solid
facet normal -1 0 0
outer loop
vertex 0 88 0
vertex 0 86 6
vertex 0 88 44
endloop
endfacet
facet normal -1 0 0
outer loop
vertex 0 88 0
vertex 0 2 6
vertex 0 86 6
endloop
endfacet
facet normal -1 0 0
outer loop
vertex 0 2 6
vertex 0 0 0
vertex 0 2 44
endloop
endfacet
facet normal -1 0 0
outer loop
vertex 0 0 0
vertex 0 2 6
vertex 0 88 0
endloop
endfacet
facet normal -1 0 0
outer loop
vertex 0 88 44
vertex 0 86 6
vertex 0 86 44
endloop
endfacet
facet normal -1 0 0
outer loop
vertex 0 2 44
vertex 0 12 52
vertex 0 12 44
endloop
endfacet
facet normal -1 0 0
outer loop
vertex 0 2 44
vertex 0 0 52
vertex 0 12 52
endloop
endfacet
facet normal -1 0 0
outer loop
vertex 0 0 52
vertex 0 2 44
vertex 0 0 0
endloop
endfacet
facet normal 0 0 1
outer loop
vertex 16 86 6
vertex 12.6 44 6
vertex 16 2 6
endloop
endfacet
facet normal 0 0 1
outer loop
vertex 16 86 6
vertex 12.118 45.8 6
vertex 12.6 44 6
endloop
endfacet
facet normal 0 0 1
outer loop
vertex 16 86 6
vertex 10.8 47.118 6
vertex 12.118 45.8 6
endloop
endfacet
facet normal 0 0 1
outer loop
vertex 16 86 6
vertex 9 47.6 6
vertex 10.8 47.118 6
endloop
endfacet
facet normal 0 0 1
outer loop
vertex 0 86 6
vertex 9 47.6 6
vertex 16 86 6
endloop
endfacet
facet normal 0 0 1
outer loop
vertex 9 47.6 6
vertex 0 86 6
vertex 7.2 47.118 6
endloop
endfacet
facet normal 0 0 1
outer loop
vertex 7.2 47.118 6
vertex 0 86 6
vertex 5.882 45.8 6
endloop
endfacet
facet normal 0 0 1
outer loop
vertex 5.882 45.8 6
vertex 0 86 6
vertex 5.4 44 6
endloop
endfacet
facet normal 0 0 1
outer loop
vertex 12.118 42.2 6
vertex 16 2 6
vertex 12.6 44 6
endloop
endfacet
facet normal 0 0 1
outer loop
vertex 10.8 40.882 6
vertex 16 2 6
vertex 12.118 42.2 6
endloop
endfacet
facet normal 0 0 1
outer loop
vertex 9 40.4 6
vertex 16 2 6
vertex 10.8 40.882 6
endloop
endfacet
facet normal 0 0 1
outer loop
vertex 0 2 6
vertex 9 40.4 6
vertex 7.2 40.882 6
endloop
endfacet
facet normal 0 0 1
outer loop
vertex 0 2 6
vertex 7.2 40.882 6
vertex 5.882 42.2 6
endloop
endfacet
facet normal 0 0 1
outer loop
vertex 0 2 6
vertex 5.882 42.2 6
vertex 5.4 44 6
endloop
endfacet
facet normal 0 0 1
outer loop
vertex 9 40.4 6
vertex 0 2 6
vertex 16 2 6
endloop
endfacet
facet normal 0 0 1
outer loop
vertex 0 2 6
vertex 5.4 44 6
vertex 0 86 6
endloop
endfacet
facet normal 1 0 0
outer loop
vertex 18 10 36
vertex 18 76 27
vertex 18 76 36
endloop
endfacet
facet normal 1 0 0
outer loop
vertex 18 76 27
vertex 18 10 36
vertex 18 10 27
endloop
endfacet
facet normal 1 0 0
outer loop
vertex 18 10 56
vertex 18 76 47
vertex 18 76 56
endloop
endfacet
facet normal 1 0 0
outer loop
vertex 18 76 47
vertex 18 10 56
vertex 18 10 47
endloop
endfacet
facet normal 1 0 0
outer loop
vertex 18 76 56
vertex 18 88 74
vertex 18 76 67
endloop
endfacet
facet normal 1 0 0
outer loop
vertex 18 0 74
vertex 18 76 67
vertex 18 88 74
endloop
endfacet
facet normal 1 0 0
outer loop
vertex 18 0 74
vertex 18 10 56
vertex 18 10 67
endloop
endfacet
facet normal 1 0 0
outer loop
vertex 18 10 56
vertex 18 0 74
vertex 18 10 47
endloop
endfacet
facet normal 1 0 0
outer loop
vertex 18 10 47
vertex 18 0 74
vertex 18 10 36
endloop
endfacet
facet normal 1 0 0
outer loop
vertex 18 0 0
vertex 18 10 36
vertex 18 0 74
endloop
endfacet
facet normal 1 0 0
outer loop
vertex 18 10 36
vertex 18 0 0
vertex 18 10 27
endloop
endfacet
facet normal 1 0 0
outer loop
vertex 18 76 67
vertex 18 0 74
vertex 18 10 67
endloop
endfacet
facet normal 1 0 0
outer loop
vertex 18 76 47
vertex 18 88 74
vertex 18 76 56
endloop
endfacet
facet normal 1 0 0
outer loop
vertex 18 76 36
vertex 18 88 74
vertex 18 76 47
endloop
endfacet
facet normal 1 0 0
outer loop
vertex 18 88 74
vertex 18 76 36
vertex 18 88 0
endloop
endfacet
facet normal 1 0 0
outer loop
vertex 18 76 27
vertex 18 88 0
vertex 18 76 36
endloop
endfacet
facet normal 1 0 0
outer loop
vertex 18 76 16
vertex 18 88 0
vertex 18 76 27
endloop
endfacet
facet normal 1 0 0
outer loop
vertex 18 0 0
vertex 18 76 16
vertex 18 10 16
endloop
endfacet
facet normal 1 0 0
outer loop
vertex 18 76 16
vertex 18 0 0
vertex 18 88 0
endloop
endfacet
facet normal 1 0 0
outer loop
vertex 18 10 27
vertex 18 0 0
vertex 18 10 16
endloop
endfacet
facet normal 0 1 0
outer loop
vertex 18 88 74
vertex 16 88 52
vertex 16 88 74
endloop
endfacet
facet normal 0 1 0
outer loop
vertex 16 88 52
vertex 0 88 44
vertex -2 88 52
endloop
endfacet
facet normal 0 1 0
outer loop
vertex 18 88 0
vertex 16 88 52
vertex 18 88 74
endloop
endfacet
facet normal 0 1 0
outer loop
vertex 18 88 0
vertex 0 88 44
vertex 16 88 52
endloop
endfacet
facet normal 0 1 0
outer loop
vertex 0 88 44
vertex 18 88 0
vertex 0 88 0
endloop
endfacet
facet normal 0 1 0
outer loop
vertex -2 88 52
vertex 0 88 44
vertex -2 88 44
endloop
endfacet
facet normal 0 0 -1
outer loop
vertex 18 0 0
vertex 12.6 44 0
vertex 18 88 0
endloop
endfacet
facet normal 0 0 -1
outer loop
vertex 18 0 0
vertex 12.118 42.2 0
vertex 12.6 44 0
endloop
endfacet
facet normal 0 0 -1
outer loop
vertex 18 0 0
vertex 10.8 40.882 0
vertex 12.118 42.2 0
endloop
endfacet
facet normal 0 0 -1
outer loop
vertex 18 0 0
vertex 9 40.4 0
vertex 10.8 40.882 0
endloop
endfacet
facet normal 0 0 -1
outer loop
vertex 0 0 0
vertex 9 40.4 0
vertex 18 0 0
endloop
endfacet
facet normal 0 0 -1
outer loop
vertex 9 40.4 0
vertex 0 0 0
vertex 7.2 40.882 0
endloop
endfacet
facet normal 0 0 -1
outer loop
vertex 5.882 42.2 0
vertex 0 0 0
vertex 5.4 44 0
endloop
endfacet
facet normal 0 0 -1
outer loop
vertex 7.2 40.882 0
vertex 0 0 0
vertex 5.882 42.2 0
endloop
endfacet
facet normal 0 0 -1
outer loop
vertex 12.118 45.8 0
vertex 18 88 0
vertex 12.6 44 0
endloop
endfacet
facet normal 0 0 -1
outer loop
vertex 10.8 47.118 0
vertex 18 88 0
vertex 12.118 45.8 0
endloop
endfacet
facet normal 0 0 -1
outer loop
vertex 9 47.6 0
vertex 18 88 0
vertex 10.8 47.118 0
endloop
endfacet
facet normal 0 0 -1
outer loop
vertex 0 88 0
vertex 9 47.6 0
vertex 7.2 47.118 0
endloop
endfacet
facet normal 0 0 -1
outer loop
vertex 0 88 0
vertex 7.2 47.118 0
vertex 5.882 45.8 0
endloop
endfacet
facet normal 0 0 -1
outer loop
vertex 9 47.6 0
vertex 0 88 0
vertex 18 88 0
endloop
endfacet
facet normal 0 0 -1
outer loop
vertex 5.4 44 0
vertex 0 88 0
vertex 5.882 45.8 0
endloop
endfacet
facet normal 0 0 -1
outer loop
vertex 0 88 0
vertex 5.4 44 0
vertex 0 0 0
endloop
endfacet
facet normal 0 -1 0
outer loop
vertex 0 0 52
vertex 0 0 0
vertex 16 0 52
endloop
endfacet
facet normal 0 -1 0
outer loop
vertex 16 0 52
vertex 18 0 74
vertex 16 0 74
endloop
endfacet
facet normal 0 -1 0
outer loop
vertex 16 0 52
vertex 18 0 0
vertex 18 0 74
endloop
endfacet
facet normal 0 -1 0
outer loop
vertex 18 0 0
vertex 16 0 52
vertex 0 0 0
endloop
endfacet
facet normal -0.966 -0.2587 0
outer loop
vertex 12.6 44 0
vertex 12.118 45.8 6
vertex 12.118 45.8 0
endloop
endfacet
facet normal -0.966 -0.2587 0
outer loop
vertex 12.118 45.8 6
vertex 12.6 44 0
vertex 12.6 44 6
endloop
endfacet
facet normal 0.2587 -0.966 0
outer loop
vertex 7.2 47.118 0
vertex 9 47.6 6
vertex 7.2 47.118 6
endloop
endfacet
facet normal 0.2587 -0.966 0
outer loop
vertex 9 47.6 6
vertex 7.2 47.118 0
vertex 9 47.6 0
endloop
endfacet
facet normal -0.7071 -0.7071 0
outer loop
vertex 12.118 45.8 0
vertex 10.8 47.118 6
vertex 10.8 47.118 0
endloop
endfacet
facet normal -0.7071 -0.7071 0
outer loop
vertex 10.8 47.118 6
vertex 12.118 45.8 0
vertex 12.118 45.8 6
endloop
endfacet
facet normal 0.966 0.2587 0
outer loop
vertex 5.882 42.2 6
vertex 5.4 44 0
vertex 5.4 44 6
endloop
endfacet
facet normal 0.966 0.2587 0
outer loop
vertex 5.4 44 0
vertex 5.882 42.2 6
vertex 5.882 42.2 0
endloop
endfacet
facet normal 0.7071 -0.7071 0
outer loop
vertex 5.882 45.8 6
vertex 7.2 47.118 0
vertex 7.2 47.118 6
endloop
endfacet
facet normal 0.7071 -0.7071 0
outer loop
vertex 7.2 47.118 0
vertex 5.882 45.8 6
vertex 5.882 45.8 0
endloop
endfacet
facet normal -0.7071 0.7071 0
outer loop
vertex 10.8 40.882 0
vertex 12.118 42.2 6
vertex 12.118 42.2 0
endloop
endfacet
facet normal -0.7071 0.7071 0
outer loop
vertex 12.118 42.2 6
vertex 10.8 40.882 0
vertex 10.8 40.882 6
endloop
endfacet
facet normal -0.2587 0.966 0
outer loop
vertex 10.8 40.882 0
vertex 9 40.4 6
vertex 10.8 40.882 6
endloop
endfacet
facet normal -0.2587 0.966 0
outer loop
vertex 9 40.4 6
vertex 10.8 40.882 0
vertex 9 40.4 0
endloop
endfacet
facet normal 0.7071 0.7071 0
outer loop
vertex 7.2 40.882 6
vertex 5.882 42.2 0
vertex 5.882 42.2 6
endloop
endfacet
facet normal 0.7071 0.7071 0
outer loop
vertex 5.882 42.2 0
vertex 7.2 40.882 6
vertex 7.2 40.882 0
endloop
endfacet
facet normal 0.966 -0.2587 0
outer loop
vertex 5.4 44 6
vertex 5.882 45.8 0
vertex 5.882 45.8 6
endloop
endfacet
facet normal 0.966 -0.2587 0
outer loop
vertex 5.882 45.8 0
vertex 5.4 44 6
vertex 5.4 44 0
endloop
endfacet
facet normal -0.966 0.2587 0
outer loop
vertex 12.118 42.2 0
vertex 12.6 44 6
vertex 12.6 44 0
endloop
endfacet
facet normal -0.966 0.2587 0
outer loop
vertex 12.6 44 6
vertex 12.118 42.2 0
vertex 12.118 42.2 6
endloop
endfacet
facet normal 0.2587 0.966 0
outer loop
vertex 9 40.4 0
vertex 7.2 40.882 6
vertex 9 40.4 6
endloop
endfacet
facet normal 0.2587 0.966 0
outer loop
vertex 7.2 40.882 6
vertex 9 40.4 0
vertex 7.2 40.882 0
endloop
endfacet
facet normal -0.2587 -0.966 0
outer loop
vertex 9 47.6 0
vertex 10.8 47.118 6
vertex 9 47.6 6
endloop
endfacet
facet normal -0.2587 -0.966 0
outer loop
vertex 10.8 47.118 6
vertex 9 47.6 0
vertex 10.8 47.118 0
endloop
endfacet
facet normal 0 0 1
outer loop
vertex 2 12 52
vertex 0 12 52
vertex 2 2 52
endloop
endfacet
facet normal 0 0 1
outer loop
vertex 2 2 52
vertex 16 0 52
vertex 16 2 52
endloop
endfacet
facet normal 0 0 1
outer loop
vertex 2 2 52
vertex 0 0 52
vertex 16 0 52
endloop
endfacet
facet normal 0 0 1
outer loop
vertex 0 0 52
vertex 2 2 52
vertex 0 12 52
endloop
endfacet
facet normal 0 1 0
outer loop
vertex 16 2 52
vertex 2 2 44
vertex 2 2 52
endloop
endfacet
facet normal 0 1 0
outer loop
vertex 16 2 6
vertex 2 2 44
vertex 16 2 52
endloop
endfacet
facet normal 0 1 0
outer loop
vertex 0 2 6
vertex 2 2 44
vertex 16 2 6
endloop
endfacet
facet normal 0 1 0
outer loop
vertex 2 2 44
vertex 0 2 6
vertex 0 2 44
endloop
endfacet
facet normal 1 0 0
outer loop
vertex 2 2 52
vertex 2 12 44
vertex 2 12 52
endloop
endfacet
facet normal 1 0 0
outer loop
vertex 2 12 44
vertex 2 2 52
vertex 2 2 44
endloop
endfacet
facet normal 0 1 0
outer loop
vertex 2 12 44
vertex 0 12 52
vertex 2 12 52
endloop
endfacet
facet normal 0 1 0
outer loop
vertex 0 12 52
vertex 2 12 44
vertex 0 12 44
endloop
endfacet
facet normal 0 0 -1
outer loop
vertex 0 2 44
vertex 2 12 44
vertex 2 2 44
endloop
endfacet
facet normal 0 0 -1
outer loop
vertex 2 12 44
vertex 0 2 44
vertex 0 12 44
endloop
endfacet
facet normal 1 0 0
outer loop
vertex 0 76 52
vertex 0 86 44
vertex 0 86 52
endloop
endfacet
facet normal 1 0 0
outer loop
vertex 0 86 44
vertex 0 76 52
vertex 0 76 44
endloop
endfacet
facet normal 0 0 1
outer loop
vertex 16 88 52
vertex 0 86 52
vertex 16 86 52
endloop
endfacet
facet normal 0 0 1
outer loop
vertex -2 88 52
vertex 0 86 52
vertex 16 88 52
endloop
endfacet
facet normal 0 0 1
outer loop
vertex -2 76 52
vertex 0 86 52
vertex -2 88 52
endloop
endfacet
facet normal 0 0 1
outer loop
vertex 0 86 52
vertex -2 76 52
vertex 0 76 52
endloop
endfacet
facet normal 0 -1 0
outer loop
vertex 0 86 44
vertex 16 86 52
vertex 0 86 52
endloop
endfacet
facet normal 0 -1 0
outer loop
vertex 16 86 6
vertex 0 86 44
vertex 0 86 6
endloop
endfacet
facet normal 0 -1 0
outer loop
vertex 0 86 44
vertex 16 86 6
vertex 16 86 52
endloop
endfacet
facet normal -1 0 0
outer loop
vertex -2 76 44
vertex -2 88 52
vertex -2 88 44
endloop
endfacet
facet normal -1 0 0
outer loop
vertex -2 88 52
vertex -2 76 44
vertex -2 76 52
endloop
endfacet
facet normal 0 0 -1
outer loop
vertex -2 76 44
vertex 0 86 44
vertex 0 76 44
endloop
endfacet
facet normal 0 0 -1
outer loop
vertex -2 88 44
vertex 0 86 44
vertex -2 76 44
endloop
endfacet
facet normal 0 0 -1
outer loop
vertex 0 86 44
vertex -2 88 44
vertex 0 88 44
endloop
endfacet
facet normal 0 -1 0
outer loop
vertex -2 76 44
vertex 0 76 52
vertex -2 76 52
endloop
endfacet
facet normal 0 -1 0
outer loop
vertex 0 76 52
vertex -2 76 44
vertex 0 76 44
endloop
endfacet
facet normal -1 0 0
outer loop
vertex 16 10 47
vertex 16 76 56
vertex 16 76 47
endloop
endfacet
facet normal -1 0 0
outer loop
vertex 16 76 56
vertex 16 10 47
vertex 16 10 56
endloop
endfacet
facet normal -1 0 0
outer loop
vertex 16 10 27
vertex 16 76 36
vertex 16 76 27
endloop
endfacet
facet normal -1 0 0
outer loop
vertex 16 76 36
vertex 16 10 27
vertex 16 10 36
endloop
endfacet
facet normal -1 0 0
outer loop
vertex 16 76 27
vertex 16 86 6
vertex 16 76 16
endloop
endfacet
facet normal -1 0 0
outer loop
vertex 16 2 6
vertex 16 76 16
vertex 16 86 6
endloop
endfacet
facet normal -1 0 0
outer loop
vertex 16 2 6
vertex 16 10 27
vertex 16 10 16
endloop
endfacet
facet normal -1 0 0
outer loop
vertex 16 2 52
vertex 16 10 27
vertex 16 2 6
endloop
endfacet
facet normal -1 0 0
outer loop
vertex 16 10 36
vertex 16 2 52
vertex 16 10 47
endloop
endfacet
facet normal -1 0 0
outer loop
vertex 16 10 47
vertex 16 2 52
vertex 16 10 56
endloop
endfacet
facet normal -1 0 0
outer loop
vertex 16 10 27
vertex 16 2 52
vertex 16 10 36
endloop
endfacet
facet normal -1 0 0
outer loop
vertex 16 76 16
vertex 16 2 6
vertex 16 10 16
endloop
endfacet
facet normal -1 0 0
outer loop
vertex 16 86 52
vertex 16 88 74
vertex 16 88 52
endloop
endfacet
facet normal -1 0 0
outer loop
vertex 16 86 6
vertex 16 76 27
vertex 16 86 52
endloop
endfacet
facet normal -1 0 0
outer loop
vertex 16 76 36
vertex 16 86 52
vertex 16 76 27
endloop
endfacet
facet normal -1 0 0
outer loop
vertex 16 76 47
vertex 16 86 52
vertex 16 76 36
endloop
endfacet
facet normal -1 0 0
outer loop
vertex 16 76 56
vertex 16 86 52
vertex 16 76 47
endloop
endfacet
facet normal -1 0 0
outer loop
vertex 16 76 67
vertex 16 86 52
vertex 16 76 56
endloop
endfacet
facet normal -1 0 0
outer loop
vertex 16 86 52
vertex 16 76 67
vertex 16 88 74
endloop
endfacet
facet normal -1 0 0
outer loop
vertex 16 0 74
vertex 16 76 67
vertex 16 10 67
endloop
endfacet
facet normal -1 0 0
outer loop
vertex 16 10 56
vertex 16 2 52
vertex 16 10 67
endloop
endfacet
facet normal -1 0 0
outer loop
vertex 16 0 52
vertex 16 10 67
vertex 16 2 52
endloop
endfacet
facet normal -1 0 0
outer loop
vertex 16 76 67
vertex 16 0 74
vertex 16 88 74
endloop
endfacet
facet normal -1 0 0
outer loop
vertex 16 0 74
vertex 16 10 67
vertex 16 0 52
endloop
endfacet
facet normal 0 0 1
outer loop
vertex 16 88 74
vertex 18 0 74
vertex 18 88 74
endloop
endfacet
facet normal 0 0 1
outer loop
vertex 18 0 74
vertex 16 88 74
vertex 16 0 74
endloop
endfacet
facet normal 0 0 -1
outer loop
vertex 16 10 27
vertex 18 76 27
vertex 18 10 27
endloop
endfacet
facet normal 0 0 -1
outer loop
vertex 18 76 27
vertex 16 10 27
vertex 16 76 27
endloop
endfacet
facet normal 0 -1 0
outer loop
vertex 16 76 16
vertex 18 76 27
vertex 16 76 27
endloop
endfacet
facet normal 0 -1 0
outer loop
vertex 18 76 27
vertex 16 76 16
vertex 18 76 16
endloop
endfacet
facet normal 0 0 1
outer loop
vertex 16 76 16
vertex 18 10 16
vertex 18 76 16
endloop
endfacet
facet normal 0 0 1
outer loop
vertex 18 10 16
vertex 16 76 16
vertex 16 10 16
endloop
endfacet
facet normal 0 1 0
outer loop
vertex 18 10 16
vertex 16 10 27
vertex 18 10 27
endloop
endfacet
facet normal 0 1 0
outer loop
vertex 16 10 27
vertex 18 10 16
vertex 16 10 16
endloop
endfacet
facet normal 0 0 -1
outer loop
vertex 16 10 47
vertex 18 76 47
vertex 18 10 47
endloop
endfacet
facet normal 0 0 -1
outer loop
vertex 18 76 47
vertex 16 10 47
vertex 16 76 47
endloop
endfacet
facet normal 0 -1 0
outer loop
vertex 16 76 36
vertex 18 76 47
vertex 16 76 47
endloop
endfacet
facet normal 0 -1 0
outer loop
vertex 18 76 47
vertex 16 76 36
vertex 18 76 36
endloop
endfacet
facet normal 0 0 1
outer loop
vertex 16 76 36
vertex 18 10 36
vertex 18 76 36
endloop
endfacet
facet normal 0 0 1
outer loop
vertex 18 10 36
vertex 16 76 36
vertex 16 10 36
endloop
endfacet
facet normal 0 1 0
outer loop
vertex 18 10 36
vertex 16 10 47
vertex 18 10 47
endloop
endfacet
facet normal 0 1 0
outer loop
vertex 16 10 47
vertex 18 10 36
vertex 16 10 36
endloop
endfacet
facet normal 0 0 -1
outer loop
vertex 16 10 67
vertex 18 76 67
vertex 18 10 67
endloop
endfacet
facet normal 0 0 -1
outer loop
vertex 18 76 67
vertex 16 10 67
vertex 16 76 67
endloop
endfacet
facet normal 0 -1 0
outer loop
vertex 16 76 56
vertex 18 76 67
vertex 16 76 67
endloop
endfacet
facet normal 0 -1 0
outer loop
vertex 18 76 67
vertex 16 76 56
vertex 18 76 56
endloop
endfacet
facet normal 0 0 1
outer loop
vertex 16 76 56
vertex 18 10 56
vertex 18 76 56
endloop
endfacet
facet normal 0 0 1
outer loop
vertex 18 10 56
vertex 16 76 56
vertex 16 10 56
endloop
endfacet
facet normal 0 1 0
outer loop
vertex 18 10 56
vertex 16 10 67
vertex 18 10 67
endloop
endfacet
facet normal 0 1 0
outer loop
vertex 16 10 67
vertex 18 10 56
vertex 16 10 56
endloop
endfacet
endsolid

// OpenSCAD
base_w=88;
base_h=18;
base_t=6;

t=2;
clamp_h=52;
clamp_t2=2;

back_l = 74;

bhole_l = 66;
bhole_h = 11;
            
module main(){
  difference(){
    cube([base_h,base_w,base_t]);   // base
    translate([base_h/2,base_w/2,0])  cylinder(h=10,r=3.6);
  }
  translate([base_h-t, 0, 0]){
      //cube([t,base_w,back_l]);   // back plate
      backplate();   // back plate
  }
  
clamp_l();
clamp_r();
}

module backplate(){
    //cube([t,base_w,back_l]);
    difference(){
        cube([t,base_w,back_l]);
        translate([ 0, (base_w-t-bhole_l)/2, 16 ]) {
          cube([t, bhole_l, bhole_h ]);      // hole
        }
        translate([ 0, (base_w-t-bhole_l)/2, 36 ]) {
          cube([t, bhole_l, bhole_h ]);      // hole
        }
        translate([ 0, (base_w-t-bhole_l)/2, 56 ]) {
          cube([t, bhole_l, bhole_h ]);      // hole
        }        
    }
}


module clamp_l(){
    cube([base_h, clamp_t2, clamp_h]);
    translate([0, clamp_t2-t, clamp_h-8 ]) {
        //cube([t, base_w-t, 8]);
        cube([t, 12, 8]);
    }
    
}

module clamp_r(){
    translate([0,base_w-clamp_t2,0]) {    
        cube([base_h, clamp_t2, clamp_h]);
        translate([0, clamp_t2, clamp_h-8 ]) {
            rotate([0,0,180]){
            cube([t, 12, 8]);}
        }
    }
}



main();
